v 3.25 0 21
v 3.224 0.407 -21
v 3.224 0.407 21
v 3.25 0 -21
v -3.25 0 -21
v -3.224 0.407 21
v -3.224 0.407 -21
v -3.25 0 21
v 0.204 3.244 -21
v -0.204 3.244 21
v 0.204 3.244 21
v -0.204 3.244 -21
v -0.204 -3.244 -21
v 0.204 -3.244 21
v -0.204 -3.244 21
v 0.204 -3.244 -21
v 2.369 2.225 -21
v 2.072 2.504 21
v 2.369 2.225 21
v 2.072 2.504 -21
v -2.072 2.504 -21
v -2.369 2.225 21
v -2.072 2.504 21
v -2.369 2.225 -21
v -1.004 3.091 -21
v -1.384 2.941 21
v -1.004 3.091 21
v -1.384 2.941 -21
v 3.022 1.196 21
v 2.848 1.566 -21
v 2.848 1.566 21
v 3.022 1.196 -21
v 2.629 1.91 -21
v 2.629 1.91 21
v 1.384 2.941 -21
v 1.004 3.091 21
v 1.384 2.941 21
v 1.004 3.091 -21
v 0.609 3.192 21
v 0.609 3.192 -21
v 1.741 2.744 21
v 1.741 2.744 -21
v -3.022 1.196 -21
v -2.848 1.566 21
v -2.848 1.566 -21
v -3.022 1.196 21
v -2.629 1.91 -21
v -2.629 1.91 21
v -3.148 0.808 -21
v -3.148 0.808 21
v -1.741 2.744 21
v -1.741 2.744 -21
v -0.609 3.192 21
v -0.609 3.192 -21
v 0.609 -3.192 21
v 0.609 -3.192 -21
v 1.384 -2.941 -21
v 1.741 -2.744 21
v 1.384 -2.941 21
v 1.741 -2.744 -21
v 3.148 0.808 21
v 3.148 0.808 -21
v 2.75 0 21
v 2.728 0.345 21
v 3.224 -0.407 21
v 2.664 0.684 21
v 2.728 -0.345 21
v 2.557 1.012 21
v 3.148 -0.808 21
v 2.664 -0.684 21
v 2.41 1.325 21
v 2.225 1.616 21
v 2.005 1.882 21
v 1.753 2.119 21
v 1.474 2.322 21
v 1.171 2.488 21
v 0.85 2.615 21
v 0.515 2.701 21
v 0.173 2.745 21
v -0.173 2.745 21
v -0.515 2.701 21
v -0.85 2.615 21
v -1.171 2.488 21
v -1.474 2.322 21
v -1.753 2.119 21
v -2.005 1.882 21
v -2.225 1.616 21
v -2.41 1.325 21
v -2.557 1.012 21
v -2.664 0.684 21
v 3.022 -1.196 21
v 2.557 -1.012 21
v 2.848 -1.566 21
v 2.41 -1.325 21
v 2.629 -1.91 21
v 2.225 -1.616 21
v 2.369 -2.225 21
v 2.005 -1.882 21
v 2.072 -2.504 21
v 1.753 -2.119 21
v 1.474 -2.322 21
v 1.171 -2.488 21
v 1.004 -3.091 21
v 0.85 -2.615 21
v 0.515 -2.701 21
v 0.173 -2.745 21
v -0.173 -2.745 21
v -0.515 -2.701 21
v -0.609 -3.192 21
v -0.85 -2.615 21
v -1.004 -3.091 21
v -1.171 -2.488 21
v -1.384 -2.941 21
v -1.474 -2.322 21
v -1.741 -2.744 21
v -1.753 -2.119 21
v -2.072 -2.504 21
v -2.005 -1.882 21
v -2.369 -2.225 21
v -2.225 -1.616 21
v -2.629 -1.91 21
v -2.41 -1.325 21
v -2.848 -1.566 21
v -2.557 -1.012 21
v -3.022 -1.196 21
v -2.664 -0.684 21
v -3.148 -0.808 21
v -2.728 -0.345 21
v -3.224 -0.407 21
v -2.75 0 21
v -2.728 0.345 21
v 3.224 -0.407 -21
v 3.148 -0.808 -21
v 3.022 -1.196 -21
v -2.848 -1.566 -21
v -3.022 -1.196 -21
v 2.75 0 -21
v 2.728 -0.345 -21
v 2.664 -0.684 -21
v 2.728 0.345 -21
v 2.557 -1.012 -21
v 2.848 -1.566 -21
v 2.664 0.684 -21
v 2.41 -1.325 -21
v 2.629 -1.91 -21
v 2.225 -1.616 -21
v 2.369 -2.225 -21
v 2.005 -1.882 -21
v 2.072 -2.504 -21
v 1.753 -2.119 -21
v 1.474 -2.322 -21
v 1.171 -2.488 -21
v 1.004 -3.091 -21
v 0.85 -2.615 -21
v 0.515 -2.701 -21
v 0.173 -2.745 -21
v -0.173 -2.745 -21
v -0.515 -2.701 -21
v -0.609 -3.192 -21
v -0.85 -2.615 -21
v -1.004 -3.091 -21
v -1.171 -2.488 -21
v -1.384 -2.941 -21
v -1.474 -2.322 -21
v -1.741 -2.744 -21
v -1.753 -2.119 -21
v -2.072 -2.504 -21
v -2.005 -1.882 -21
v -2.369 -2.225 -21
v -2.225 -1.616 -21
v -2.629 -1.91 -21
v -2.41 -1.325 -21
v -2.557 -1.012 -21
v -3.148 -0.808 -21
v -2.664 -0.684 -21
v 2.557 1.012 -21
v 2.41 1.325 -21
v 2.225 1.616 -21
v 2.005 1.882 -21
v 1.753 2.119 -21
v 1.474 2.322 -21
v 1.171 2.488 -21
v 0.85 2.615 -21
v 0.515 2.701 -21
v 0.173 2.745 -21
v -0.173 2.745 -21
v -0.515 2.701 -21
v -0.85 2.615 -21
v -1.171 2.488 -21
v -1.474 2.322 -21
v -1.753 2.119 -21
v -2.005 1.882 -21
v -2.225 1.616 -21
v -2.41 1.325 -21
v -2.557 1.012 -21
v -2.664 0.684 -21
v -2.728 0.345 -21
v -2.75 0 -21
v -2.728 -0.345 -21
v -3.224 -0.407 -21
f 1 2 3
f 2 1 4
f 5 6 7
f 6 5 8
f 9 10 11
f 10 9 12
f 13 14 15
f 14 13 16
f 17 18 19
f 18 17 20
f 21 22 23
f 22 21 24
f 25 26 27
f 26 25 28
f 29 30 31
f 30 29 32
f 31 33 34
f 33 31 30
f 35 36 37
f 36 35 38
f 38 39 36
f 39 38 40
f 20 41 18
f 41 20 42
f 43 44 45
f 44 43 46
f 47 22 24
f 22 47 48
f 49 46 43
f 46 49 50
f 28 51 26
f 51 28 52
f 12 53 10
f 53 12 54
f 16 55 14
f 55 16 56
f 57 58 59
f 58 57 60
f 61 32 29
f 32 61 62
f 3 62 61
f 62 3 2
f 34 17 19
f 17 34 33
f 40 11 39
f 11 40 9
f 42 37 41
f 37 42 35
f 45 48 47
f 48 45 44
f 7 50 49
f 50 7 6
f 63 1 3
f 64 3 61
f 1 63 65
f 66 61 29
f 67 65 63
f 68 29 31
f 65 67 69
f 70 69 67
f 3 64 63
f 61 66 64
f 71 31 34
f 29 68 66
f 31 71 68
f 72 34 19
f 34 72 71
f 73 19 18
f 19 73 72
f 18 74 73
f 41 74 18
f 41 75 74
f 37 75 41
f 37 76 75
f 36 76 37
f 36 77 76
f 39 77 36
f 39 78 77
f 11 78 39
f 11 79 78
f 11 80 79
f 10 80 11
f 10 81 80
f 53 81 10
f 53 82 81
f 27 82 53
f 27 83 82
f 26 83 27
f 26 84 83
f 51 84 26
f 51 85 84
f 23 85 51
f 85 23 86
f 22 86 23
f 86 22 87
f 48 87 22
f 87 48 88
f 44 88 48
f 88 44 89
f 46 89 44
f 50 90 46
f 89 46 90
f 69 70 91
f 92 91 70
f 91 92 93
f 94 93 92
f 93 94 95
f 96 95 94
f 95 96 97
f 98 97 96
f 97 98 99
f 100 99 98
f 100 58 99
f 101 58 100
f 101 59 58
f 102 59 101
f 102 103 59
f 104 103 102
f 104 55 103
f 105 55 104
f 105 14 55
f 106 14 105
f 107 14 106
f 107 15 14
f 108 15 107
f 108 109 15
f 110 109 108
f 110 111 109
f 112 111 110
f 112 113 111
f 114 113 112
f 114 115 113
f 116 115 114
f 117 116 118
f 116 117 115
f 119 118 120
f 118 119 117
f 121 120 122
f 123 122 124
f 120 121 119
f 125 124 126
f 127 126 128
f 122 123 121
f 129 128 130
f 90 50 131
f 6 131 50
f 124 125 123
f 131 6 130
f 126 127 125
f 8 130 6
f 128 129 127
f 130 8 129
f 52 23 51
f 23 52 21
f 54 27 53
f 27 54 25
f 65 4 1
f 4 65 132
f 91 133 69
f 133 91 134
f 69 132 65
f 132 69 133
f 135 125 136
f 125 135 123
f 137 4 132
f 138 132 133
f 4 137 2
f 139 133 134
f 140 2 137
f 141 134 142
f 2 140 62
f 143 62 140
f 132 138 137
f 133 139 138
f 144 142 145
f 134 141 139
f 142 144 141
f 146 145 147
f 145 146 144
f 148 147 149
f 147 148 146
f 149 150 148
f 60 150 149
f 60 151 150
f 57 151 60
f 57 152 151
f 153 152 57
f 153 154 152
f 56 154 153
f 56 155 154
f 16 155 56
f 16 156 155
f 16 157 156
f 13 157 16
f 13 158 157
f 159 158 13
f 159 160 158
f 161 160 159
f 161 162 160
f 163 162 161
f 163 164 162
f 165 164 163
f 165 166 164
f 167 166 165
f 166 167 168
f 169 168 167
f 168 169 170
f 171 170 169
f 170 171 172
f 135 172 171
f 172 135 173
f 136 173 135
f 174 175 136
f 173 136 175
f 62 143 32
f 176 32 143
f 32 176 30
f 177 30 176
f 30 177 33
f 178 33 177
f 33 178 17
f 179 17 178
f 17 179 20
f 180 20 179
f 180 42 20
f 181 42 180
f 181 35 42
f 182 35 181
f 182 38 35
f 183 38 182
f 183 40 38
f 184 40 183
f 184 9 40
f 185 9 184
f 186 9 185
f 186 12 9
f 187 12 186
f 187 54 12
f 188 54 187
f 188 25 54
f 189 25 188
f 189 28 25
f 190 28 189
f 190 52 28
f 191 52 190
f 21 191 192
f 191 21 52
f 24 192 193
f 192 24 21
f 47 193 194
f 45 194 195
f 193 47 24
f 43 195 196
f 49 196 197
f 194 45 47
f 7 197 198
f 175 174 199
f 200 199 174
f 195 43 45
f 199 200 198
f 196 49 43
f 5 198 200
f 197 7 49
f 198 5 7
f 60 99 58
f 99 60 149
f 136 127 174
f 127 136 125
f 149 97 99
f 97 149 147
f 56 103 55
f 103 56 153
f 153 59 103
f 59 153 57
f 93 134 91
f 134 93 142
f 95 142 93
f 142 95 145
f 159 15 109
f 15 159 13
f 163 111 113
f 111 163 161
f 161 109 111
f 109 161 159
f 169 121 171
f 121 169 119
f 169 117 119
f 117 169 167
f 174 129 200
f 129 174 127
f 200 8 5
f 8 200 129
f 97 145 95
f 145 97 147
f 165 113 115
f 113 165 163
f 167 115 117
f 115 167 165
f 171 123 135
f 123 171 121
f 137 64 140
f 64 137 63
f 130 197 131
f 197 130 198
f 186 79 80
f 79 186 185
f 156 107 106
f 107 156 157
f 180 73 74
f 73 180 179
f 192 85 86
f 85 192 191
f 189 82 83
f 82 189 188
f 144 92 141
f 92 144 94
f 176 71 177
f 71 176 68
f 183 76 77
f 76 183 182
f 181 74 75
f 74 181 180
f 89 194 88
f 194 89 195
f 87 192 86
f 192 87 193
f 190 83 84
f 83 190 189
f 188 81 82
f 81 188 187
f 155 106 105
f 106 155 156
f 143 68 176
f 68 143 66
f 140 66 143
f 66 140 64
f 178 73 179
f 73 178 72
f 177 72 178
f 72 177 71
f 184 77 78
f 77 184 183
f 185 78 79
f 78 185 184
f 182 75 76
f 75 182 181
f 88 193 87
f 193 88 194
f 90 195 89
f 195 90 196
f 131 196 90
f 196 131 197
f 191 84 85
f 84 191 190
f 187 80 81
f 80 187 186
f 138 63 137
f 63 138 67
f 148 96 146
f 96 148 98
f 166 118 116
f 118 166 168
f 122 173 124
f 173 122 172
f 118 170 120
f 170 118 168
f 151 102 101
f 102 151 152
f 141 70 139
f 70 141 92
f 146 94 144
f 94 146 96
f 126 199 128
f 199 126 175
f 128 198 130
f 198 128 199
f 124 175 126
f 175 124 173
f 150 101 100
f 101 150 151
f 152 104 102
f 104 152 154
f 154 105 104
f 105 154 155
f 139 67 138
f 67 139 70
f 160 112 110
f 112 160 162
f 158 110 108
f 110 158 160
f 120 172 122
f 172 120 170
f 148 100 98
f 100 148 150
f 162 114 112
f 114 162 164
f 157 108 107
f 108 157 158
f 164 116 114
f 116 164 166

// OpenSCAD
$fn = 50;


difference() {
	union() {
		translate(v = [0, 0, -21.0000000000]) {
			cylinder(h = 42, r = 3.2500000000);
		}
	}
	union() {
		translate(v = [0, 0, -100.0000000000]) {
			cylinder(h = 200, r = 2.7500000000);
		}
	}
}
